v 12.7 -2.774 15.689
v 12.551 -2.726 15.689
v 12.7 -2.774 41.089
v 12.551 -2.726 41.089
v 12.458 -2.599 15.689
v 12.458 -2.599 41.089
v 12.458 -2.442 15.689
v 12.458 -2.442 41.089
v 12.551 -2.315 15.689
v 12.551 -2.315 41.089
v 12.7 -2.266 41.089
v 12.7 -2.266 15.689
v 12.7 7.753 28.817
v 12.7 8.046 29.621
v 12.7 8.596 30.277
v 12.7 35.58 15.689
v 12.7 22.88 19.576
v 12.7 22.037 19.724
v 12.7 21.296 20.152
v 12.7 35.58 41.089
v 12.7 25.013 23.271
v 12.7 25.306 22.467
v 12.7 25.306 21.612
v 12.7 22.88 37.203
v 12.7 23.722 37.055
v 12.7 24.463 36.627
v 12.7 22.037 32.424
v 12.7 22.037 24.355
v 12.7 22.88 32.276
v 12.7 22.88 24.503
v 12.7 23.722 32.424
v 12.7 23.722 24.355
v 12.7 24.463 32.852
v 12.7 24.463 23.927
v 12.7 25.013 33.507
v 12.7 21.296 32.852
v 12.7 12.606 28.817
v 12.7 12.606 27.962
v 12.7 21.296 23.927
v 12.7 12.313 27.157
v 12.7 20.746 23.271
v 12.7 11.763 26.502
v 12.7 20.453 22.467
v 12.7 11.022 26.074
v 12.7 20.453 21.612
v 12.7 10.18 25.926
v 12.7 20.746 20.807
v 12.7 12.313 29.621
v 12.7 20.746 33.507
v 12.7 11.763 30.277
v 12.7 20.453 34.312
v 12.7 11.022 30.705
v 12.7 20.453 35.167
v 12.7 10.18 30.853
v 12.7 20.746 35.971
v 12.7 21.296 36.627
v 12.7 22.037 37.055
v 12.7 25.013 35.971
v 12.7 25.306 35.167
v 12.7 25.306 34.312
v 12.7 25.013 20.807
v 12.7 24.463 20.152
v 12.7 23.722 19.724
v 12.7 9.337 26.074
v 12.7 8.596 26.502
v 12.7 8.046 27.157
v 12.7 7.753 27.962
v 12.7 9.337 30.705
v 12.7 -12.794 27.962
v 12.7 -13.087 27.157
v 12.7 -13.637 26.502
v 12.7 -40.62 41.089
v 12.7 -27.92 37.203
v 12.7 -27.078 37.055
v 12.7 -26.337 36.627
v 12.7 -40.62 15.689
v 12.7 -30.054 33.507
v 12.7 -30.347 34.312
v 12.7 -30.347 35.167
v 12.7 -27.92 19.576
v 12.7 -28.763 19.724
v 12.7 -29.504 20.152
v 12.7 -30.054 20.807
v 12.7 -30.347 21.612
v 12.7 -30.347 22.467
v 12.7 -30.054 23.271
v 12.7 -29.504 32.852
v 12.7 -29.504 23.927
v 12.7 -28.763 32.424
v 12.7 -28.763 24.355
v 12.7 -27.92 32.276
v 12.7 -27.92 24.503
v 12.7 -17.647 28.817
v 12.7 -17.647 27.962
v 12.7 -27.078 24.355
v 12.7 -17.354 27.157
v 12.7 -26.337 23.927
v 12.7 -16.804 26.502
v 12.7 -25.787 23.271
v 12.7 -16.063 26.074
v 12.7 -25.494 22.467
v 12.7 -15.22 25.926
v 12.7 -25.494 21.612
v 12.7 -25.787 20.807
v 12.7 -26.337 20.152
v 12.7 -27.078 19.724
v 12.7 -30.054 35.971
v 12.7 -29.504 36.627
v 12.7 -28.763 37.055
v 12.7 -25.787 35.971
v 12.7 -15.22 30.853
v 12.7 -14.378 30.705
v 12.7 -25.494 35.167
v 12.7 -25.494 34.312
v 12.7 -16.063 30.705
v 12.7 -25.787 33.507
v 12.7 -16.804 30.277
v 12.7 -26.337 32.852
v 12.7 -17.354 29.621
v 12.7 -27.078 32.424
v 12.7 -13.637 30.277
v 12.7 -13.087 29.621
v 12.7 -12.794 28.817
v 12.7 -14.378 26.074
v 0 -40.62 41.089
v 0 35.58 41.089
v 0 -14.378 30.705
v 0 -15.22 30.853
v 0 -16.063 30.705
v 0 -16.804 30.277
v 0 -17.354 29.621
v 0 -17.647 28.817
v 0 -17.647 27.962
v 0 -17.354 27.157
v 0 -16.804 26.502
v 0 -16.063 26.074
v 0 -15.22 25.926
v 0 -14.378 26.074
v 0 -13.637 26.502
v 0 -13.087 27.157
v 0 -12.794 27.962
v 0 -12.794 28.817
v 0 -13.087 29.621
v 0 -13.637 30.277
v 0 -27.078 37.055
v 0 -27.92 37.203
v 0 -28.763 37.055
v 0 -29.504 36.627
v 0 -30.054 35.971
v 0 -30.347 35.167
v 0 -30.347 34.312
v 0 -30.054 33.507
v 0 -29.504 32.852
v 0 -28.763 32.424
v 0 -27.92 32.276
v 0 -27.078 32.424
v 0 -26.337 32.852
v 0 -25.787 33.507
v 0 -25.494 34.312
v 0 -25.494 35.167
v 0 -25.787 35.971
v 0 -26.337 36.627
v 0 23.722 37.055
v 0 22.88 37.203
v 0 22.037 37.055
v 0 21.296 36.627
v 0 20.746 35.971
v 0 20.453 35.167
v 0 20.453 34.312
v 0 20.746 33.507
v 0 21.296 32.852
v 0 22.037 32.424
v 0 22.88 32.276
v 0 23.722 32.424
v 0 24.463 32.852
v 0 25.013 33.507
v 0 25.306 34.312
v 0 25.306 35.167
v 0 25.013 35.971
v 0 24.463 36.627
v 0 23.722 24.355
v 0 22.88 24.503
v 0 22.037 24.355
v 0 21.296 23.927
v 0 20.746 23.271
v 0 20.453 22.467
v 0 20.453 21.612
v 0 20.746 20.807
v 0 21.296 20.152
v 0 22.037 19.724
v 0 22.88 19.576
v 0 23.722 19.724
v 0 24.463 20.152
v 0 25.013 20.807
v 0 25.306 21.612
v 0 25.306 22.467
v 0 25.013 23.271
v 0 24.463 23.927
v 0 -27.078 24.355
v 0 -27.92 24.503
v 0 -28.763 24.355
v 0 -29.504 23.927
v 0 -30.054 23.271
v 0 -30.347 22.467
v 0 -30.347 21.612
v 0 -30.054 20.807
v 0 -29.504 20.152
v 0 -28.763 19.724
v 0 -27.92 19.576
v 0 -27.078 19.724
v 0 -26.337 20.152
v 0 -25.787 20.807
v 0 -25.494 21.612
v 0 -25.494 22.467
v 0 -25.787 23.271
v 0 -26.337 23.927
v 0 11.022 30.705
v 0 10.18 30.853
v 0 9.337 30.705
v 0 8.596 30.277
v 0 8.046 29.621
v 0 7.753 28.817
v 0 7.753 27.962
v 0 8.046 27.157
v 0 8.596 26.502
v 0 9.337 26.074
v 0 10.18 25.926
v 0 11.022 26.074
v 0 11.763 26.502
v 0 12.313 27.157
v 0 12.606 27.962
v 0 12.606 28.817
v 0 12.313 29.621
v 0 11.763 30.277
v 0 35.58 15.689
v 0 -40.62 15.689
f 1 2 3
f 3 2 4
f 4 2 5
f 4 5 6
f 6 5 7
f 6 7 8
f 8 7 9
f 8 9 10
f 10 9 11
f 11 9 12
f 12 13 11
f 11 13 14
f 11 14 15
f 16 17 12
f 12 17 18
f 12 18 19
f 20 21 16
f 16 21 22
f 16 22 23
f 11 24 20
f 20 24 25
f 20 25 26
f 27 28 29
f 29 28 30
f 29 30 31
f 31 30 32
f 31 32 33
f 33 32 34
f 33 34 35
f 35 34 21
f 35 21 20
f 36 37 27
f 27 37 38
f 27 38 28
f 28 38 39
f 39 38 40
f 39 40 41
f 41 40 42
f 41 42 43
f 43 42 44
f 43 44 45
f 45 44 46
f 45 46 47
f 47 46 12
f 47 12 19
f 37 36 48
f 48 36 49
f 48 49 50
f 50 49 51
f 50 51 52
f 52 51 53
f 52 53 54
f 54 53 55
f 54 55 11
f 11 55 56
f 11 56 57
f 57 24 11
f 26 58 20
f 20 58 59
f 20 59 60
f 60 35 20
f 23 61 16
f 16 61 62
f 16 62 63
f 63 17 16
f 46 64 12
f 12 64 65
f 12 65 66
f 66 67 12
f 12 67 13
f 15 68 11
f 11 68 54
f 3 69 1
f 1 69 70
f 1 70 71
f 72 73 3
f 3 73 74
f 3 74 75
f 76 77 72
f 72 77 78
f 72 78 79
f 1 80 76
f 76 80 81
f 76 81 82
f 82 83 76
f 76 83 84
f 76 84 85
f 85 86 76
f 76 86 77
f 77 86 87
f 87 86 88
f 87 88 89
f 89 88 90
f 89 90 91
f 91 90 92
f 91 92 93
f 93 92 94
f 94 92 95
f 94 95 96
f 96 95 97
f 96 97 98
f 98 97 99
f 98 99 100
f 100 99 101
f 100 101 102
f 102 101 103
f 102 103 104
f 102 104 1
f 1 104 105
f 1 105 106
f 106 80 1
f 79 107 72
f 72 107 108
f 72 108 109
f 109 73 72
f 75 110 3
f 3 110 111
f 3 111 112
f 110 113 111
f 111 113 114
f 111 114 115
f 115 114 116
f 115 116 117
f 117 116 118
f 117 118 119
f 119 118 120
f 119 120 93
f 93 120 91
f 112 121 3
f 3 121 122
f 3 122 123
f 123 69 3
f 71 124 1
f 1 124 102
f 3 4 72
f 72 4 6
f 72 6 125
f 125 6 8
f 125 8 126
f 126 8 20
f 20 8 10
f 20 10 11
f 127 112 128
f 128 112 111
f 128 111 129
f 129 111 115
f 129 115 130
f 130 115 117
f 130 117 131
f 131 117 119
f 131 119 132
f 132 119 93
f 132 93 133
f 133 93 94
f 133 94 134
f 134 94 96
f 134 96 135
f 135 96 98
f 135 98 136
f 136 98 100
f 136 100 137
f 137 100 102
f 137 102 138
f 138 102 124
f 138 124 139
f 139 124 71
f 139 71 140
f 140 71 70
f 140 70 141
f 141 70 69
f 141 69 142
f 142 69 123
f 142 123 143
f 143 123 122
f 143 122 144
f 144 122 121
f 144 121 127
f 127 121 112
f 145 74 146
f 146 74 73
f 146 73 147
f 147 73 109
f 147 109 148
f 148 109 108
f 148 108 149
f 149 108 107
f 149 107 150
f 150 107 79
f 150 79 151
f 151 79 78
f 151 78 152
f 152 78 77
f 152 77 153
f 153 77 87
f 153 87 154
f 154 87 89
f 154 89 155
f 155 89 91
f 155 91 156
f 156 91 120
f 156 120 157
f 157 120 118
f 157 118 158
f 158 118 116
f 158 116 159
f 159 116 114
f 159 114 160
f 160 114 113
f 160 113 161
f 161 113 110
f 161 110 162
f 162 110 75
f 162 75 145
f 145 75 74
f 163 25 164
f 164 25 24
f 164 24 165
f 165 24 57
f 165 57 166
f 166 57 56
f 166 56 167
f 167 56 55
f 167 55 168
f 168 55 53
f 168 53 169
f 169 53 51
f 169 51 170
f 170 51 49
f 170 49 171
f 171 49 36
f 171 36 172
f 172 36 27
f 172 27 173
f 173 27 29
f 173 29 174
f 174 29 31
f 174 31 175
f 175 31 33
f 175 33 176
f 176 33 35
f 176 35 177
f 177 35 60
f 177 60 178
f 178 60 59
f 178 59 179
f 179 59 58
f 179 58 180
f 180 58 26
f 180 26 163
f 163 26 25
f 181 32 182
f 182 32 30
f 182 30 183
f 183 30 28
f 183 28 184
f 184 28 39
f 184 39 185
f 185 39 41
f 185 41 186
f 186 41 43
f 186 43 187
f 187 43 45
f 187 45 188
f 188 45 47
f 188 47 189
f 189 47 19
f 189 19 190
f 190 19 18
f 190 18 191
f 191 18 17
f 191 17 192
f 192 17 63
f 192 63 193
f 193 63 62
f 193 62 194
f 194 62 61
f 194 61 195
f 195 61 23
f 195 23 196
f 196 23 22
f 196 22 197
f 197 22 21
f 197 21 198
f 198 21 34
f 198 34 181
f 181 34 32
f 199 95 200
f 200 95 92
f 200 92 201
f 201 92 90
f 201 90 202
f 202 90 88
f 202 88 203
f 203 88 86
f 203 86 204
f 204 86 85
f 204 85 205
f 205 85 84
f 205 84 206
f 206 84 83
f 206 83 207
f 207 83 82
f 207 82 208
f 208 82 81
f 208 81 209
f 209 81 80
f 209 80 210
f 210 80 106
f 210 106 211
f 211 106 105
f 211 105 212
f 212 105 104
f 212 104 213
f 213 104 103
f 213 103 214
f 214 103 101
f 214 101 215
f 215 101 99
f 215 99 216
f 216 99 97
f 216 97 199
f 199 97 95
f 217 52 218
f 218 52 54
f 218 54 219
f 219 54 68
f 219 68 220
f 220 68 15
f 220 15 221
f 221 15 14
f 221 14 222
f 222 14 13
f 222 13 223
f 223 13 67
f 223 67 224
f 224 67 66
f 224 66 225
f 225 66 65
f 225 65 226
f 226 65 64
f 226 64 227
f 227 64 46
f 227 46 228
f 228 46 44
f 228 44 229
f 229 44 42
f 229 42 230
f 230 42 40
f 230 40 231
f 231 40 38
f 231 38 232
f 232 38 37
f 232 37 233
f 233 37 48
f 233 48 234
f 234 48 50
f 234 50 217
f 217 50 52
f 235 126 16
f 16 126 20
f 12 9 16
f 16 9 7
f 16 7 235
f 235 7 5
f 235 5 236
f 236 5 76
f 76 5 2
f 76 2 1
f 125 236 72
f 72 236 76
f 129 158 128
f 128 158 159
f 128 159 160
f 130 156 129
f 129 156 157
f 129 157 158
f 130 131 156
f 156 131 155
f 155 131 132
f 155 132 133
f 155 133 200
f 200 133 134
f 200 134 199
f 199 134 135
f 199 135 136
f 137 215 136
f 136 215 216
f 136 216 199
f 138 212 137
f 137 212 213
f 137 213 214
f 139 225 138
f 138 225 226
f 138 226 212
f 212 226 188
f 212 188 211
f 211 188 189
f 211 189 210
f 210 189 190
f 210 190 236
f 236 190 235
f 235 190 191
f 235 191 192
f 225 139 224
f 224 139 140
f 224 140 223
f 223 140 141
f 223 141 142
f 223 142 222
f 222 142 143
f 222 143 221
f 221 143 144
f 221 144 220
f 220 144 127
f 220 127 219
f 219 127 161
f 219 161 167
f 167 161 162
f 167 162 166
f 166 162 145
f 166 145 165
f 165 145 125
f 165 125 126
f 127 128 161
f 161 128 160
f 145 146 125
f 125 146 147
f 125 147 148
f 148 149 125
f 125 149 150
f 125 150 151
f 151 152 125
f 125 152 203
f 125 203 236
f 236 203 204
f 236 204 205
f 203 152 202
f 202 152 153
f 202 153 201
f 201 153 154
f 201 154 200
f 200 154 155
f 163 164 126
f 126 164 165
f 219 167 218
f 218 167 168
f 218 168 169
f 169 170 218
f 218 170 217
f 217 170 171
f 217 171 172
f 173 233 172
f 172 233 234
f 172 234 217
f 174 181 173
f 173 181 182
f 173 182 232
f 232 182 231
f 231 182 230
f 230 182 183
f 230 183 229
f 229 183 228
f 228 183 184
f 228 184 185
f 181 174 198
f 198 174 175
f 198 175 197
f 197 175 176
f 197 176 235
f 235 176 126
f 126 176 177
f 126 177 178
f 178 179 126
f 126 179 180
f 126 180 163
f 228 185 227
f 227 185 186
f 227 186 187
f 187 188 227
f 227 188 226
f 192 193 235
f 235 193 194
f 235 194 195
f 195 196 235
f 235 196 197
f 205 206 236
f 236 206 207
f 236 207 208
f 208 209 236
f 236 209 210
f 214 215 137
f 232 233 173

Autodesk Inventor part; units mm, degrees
ref_plane "YZ Plane" through (0, 0, 0) normal (1, 0, 0) x (0, 1, 0)
ref_plane "XZ Plane" through (0, 0, 0) normal (0, 1, 0) x (-1, 0, 0)
ref_plane "XY Plane" through (0, 0, 0) normal (0, 0, 1) x (1, 0, 0)
sketch "Sketch1" plane through (0, 0, 0) normal (1, 0, 0) x (0, 1, 0)
  line L0 (35.5795, 41.0894) -> (-40.6205, 41.0894)
  line L1 (-40.6205, 41.0894) -> (-40.6205, 15.6894)
  line L2 (-40.6205, 15.6894) -> (35.5795, 15.6894)
  line L3 (35.5795, 15.6894) -> (35.5795, 41.0894)
  point P0 (0, 0)
  dimension "d0" = 76.2
  dimension "d1" = 25.4
extrude "Extrusion1" add sketch "Sketch1" along normal blind 12.7
sketch "Sketch2" plane through (12.7, 0, 0) normal (1, 0, 0) x (0, 0, -1)
  line L0 (-15.6894, -40.6205) -> (-15.6894, 35.5795) projected
  line L1 (-41.0894, 35.5795) -> (-41.0894, -40.6205) projected
  line L2 (-15.6894, 35.5795) -> (-41.0894, 35.5795) projected
  line L3 (-41.0894, -40.6205) -> (-15.6894, -40.6205) projected
  point P0 (0, 0)
  point P1 (-34.7394, 22.8795)
  point P2 (-22.0394, 22.8795)
  point P3 (-34.7394, -27.9205)
  point P4 (-22.0394, -27.9205)
  point P5 (-28.3894, -15.2205)
  point P6 (-28.3894, 10.1795)
  dimension "d4" = 0
  dimension "d5" = 0
  dimension "d6" = 6.35
  dimension "d7" = 6.35
  dimension "d8" = 12.7
  dimension "d9" = 25.4
  dimension "d10" = 12.7
  dimension "d11" = 25.4
  dimension "d12" = 12.7
  dimension "d13" = 6.35
  dimension "d14" = 6.35
  dimension "d15" = 12.7
hole "Hole1" at (12.7, 22.8795, 34.7394) at (12.7, 22.8795, 22.0394) at (12.7, -27.9205, 34.7394) at (12.7, -27.9205, 22.0394) at (12.7, -15.2205, 28.3894) at (12.7, 10.1795, 28.3894) direction (-1, 0, 0) diameter 4.9276 end through all
sketch "Sketch3" plane through (0, -40.6205, 41.0894) normal (0, 0, 1) x (1, 0, 0)
  arc A0 (12.7, 38.354) -> (12.7, 37.846) centre (12.7, 38.1) ccw
  line L0 (12.7, 76.2) -> (12.7, 0) projected
  line L1 (0, 76.2) -> (12.7, 76.2) projected
  point P0 (0, 40.6205)
  dimension "d23" = 0.254
  dimension "d24" = 38.1
  dimension "d27" = 0
extrude "Extrusion2" cut sketch "Sketch3" against normal blind 26.9875
properties part number "CabinetBraket"
